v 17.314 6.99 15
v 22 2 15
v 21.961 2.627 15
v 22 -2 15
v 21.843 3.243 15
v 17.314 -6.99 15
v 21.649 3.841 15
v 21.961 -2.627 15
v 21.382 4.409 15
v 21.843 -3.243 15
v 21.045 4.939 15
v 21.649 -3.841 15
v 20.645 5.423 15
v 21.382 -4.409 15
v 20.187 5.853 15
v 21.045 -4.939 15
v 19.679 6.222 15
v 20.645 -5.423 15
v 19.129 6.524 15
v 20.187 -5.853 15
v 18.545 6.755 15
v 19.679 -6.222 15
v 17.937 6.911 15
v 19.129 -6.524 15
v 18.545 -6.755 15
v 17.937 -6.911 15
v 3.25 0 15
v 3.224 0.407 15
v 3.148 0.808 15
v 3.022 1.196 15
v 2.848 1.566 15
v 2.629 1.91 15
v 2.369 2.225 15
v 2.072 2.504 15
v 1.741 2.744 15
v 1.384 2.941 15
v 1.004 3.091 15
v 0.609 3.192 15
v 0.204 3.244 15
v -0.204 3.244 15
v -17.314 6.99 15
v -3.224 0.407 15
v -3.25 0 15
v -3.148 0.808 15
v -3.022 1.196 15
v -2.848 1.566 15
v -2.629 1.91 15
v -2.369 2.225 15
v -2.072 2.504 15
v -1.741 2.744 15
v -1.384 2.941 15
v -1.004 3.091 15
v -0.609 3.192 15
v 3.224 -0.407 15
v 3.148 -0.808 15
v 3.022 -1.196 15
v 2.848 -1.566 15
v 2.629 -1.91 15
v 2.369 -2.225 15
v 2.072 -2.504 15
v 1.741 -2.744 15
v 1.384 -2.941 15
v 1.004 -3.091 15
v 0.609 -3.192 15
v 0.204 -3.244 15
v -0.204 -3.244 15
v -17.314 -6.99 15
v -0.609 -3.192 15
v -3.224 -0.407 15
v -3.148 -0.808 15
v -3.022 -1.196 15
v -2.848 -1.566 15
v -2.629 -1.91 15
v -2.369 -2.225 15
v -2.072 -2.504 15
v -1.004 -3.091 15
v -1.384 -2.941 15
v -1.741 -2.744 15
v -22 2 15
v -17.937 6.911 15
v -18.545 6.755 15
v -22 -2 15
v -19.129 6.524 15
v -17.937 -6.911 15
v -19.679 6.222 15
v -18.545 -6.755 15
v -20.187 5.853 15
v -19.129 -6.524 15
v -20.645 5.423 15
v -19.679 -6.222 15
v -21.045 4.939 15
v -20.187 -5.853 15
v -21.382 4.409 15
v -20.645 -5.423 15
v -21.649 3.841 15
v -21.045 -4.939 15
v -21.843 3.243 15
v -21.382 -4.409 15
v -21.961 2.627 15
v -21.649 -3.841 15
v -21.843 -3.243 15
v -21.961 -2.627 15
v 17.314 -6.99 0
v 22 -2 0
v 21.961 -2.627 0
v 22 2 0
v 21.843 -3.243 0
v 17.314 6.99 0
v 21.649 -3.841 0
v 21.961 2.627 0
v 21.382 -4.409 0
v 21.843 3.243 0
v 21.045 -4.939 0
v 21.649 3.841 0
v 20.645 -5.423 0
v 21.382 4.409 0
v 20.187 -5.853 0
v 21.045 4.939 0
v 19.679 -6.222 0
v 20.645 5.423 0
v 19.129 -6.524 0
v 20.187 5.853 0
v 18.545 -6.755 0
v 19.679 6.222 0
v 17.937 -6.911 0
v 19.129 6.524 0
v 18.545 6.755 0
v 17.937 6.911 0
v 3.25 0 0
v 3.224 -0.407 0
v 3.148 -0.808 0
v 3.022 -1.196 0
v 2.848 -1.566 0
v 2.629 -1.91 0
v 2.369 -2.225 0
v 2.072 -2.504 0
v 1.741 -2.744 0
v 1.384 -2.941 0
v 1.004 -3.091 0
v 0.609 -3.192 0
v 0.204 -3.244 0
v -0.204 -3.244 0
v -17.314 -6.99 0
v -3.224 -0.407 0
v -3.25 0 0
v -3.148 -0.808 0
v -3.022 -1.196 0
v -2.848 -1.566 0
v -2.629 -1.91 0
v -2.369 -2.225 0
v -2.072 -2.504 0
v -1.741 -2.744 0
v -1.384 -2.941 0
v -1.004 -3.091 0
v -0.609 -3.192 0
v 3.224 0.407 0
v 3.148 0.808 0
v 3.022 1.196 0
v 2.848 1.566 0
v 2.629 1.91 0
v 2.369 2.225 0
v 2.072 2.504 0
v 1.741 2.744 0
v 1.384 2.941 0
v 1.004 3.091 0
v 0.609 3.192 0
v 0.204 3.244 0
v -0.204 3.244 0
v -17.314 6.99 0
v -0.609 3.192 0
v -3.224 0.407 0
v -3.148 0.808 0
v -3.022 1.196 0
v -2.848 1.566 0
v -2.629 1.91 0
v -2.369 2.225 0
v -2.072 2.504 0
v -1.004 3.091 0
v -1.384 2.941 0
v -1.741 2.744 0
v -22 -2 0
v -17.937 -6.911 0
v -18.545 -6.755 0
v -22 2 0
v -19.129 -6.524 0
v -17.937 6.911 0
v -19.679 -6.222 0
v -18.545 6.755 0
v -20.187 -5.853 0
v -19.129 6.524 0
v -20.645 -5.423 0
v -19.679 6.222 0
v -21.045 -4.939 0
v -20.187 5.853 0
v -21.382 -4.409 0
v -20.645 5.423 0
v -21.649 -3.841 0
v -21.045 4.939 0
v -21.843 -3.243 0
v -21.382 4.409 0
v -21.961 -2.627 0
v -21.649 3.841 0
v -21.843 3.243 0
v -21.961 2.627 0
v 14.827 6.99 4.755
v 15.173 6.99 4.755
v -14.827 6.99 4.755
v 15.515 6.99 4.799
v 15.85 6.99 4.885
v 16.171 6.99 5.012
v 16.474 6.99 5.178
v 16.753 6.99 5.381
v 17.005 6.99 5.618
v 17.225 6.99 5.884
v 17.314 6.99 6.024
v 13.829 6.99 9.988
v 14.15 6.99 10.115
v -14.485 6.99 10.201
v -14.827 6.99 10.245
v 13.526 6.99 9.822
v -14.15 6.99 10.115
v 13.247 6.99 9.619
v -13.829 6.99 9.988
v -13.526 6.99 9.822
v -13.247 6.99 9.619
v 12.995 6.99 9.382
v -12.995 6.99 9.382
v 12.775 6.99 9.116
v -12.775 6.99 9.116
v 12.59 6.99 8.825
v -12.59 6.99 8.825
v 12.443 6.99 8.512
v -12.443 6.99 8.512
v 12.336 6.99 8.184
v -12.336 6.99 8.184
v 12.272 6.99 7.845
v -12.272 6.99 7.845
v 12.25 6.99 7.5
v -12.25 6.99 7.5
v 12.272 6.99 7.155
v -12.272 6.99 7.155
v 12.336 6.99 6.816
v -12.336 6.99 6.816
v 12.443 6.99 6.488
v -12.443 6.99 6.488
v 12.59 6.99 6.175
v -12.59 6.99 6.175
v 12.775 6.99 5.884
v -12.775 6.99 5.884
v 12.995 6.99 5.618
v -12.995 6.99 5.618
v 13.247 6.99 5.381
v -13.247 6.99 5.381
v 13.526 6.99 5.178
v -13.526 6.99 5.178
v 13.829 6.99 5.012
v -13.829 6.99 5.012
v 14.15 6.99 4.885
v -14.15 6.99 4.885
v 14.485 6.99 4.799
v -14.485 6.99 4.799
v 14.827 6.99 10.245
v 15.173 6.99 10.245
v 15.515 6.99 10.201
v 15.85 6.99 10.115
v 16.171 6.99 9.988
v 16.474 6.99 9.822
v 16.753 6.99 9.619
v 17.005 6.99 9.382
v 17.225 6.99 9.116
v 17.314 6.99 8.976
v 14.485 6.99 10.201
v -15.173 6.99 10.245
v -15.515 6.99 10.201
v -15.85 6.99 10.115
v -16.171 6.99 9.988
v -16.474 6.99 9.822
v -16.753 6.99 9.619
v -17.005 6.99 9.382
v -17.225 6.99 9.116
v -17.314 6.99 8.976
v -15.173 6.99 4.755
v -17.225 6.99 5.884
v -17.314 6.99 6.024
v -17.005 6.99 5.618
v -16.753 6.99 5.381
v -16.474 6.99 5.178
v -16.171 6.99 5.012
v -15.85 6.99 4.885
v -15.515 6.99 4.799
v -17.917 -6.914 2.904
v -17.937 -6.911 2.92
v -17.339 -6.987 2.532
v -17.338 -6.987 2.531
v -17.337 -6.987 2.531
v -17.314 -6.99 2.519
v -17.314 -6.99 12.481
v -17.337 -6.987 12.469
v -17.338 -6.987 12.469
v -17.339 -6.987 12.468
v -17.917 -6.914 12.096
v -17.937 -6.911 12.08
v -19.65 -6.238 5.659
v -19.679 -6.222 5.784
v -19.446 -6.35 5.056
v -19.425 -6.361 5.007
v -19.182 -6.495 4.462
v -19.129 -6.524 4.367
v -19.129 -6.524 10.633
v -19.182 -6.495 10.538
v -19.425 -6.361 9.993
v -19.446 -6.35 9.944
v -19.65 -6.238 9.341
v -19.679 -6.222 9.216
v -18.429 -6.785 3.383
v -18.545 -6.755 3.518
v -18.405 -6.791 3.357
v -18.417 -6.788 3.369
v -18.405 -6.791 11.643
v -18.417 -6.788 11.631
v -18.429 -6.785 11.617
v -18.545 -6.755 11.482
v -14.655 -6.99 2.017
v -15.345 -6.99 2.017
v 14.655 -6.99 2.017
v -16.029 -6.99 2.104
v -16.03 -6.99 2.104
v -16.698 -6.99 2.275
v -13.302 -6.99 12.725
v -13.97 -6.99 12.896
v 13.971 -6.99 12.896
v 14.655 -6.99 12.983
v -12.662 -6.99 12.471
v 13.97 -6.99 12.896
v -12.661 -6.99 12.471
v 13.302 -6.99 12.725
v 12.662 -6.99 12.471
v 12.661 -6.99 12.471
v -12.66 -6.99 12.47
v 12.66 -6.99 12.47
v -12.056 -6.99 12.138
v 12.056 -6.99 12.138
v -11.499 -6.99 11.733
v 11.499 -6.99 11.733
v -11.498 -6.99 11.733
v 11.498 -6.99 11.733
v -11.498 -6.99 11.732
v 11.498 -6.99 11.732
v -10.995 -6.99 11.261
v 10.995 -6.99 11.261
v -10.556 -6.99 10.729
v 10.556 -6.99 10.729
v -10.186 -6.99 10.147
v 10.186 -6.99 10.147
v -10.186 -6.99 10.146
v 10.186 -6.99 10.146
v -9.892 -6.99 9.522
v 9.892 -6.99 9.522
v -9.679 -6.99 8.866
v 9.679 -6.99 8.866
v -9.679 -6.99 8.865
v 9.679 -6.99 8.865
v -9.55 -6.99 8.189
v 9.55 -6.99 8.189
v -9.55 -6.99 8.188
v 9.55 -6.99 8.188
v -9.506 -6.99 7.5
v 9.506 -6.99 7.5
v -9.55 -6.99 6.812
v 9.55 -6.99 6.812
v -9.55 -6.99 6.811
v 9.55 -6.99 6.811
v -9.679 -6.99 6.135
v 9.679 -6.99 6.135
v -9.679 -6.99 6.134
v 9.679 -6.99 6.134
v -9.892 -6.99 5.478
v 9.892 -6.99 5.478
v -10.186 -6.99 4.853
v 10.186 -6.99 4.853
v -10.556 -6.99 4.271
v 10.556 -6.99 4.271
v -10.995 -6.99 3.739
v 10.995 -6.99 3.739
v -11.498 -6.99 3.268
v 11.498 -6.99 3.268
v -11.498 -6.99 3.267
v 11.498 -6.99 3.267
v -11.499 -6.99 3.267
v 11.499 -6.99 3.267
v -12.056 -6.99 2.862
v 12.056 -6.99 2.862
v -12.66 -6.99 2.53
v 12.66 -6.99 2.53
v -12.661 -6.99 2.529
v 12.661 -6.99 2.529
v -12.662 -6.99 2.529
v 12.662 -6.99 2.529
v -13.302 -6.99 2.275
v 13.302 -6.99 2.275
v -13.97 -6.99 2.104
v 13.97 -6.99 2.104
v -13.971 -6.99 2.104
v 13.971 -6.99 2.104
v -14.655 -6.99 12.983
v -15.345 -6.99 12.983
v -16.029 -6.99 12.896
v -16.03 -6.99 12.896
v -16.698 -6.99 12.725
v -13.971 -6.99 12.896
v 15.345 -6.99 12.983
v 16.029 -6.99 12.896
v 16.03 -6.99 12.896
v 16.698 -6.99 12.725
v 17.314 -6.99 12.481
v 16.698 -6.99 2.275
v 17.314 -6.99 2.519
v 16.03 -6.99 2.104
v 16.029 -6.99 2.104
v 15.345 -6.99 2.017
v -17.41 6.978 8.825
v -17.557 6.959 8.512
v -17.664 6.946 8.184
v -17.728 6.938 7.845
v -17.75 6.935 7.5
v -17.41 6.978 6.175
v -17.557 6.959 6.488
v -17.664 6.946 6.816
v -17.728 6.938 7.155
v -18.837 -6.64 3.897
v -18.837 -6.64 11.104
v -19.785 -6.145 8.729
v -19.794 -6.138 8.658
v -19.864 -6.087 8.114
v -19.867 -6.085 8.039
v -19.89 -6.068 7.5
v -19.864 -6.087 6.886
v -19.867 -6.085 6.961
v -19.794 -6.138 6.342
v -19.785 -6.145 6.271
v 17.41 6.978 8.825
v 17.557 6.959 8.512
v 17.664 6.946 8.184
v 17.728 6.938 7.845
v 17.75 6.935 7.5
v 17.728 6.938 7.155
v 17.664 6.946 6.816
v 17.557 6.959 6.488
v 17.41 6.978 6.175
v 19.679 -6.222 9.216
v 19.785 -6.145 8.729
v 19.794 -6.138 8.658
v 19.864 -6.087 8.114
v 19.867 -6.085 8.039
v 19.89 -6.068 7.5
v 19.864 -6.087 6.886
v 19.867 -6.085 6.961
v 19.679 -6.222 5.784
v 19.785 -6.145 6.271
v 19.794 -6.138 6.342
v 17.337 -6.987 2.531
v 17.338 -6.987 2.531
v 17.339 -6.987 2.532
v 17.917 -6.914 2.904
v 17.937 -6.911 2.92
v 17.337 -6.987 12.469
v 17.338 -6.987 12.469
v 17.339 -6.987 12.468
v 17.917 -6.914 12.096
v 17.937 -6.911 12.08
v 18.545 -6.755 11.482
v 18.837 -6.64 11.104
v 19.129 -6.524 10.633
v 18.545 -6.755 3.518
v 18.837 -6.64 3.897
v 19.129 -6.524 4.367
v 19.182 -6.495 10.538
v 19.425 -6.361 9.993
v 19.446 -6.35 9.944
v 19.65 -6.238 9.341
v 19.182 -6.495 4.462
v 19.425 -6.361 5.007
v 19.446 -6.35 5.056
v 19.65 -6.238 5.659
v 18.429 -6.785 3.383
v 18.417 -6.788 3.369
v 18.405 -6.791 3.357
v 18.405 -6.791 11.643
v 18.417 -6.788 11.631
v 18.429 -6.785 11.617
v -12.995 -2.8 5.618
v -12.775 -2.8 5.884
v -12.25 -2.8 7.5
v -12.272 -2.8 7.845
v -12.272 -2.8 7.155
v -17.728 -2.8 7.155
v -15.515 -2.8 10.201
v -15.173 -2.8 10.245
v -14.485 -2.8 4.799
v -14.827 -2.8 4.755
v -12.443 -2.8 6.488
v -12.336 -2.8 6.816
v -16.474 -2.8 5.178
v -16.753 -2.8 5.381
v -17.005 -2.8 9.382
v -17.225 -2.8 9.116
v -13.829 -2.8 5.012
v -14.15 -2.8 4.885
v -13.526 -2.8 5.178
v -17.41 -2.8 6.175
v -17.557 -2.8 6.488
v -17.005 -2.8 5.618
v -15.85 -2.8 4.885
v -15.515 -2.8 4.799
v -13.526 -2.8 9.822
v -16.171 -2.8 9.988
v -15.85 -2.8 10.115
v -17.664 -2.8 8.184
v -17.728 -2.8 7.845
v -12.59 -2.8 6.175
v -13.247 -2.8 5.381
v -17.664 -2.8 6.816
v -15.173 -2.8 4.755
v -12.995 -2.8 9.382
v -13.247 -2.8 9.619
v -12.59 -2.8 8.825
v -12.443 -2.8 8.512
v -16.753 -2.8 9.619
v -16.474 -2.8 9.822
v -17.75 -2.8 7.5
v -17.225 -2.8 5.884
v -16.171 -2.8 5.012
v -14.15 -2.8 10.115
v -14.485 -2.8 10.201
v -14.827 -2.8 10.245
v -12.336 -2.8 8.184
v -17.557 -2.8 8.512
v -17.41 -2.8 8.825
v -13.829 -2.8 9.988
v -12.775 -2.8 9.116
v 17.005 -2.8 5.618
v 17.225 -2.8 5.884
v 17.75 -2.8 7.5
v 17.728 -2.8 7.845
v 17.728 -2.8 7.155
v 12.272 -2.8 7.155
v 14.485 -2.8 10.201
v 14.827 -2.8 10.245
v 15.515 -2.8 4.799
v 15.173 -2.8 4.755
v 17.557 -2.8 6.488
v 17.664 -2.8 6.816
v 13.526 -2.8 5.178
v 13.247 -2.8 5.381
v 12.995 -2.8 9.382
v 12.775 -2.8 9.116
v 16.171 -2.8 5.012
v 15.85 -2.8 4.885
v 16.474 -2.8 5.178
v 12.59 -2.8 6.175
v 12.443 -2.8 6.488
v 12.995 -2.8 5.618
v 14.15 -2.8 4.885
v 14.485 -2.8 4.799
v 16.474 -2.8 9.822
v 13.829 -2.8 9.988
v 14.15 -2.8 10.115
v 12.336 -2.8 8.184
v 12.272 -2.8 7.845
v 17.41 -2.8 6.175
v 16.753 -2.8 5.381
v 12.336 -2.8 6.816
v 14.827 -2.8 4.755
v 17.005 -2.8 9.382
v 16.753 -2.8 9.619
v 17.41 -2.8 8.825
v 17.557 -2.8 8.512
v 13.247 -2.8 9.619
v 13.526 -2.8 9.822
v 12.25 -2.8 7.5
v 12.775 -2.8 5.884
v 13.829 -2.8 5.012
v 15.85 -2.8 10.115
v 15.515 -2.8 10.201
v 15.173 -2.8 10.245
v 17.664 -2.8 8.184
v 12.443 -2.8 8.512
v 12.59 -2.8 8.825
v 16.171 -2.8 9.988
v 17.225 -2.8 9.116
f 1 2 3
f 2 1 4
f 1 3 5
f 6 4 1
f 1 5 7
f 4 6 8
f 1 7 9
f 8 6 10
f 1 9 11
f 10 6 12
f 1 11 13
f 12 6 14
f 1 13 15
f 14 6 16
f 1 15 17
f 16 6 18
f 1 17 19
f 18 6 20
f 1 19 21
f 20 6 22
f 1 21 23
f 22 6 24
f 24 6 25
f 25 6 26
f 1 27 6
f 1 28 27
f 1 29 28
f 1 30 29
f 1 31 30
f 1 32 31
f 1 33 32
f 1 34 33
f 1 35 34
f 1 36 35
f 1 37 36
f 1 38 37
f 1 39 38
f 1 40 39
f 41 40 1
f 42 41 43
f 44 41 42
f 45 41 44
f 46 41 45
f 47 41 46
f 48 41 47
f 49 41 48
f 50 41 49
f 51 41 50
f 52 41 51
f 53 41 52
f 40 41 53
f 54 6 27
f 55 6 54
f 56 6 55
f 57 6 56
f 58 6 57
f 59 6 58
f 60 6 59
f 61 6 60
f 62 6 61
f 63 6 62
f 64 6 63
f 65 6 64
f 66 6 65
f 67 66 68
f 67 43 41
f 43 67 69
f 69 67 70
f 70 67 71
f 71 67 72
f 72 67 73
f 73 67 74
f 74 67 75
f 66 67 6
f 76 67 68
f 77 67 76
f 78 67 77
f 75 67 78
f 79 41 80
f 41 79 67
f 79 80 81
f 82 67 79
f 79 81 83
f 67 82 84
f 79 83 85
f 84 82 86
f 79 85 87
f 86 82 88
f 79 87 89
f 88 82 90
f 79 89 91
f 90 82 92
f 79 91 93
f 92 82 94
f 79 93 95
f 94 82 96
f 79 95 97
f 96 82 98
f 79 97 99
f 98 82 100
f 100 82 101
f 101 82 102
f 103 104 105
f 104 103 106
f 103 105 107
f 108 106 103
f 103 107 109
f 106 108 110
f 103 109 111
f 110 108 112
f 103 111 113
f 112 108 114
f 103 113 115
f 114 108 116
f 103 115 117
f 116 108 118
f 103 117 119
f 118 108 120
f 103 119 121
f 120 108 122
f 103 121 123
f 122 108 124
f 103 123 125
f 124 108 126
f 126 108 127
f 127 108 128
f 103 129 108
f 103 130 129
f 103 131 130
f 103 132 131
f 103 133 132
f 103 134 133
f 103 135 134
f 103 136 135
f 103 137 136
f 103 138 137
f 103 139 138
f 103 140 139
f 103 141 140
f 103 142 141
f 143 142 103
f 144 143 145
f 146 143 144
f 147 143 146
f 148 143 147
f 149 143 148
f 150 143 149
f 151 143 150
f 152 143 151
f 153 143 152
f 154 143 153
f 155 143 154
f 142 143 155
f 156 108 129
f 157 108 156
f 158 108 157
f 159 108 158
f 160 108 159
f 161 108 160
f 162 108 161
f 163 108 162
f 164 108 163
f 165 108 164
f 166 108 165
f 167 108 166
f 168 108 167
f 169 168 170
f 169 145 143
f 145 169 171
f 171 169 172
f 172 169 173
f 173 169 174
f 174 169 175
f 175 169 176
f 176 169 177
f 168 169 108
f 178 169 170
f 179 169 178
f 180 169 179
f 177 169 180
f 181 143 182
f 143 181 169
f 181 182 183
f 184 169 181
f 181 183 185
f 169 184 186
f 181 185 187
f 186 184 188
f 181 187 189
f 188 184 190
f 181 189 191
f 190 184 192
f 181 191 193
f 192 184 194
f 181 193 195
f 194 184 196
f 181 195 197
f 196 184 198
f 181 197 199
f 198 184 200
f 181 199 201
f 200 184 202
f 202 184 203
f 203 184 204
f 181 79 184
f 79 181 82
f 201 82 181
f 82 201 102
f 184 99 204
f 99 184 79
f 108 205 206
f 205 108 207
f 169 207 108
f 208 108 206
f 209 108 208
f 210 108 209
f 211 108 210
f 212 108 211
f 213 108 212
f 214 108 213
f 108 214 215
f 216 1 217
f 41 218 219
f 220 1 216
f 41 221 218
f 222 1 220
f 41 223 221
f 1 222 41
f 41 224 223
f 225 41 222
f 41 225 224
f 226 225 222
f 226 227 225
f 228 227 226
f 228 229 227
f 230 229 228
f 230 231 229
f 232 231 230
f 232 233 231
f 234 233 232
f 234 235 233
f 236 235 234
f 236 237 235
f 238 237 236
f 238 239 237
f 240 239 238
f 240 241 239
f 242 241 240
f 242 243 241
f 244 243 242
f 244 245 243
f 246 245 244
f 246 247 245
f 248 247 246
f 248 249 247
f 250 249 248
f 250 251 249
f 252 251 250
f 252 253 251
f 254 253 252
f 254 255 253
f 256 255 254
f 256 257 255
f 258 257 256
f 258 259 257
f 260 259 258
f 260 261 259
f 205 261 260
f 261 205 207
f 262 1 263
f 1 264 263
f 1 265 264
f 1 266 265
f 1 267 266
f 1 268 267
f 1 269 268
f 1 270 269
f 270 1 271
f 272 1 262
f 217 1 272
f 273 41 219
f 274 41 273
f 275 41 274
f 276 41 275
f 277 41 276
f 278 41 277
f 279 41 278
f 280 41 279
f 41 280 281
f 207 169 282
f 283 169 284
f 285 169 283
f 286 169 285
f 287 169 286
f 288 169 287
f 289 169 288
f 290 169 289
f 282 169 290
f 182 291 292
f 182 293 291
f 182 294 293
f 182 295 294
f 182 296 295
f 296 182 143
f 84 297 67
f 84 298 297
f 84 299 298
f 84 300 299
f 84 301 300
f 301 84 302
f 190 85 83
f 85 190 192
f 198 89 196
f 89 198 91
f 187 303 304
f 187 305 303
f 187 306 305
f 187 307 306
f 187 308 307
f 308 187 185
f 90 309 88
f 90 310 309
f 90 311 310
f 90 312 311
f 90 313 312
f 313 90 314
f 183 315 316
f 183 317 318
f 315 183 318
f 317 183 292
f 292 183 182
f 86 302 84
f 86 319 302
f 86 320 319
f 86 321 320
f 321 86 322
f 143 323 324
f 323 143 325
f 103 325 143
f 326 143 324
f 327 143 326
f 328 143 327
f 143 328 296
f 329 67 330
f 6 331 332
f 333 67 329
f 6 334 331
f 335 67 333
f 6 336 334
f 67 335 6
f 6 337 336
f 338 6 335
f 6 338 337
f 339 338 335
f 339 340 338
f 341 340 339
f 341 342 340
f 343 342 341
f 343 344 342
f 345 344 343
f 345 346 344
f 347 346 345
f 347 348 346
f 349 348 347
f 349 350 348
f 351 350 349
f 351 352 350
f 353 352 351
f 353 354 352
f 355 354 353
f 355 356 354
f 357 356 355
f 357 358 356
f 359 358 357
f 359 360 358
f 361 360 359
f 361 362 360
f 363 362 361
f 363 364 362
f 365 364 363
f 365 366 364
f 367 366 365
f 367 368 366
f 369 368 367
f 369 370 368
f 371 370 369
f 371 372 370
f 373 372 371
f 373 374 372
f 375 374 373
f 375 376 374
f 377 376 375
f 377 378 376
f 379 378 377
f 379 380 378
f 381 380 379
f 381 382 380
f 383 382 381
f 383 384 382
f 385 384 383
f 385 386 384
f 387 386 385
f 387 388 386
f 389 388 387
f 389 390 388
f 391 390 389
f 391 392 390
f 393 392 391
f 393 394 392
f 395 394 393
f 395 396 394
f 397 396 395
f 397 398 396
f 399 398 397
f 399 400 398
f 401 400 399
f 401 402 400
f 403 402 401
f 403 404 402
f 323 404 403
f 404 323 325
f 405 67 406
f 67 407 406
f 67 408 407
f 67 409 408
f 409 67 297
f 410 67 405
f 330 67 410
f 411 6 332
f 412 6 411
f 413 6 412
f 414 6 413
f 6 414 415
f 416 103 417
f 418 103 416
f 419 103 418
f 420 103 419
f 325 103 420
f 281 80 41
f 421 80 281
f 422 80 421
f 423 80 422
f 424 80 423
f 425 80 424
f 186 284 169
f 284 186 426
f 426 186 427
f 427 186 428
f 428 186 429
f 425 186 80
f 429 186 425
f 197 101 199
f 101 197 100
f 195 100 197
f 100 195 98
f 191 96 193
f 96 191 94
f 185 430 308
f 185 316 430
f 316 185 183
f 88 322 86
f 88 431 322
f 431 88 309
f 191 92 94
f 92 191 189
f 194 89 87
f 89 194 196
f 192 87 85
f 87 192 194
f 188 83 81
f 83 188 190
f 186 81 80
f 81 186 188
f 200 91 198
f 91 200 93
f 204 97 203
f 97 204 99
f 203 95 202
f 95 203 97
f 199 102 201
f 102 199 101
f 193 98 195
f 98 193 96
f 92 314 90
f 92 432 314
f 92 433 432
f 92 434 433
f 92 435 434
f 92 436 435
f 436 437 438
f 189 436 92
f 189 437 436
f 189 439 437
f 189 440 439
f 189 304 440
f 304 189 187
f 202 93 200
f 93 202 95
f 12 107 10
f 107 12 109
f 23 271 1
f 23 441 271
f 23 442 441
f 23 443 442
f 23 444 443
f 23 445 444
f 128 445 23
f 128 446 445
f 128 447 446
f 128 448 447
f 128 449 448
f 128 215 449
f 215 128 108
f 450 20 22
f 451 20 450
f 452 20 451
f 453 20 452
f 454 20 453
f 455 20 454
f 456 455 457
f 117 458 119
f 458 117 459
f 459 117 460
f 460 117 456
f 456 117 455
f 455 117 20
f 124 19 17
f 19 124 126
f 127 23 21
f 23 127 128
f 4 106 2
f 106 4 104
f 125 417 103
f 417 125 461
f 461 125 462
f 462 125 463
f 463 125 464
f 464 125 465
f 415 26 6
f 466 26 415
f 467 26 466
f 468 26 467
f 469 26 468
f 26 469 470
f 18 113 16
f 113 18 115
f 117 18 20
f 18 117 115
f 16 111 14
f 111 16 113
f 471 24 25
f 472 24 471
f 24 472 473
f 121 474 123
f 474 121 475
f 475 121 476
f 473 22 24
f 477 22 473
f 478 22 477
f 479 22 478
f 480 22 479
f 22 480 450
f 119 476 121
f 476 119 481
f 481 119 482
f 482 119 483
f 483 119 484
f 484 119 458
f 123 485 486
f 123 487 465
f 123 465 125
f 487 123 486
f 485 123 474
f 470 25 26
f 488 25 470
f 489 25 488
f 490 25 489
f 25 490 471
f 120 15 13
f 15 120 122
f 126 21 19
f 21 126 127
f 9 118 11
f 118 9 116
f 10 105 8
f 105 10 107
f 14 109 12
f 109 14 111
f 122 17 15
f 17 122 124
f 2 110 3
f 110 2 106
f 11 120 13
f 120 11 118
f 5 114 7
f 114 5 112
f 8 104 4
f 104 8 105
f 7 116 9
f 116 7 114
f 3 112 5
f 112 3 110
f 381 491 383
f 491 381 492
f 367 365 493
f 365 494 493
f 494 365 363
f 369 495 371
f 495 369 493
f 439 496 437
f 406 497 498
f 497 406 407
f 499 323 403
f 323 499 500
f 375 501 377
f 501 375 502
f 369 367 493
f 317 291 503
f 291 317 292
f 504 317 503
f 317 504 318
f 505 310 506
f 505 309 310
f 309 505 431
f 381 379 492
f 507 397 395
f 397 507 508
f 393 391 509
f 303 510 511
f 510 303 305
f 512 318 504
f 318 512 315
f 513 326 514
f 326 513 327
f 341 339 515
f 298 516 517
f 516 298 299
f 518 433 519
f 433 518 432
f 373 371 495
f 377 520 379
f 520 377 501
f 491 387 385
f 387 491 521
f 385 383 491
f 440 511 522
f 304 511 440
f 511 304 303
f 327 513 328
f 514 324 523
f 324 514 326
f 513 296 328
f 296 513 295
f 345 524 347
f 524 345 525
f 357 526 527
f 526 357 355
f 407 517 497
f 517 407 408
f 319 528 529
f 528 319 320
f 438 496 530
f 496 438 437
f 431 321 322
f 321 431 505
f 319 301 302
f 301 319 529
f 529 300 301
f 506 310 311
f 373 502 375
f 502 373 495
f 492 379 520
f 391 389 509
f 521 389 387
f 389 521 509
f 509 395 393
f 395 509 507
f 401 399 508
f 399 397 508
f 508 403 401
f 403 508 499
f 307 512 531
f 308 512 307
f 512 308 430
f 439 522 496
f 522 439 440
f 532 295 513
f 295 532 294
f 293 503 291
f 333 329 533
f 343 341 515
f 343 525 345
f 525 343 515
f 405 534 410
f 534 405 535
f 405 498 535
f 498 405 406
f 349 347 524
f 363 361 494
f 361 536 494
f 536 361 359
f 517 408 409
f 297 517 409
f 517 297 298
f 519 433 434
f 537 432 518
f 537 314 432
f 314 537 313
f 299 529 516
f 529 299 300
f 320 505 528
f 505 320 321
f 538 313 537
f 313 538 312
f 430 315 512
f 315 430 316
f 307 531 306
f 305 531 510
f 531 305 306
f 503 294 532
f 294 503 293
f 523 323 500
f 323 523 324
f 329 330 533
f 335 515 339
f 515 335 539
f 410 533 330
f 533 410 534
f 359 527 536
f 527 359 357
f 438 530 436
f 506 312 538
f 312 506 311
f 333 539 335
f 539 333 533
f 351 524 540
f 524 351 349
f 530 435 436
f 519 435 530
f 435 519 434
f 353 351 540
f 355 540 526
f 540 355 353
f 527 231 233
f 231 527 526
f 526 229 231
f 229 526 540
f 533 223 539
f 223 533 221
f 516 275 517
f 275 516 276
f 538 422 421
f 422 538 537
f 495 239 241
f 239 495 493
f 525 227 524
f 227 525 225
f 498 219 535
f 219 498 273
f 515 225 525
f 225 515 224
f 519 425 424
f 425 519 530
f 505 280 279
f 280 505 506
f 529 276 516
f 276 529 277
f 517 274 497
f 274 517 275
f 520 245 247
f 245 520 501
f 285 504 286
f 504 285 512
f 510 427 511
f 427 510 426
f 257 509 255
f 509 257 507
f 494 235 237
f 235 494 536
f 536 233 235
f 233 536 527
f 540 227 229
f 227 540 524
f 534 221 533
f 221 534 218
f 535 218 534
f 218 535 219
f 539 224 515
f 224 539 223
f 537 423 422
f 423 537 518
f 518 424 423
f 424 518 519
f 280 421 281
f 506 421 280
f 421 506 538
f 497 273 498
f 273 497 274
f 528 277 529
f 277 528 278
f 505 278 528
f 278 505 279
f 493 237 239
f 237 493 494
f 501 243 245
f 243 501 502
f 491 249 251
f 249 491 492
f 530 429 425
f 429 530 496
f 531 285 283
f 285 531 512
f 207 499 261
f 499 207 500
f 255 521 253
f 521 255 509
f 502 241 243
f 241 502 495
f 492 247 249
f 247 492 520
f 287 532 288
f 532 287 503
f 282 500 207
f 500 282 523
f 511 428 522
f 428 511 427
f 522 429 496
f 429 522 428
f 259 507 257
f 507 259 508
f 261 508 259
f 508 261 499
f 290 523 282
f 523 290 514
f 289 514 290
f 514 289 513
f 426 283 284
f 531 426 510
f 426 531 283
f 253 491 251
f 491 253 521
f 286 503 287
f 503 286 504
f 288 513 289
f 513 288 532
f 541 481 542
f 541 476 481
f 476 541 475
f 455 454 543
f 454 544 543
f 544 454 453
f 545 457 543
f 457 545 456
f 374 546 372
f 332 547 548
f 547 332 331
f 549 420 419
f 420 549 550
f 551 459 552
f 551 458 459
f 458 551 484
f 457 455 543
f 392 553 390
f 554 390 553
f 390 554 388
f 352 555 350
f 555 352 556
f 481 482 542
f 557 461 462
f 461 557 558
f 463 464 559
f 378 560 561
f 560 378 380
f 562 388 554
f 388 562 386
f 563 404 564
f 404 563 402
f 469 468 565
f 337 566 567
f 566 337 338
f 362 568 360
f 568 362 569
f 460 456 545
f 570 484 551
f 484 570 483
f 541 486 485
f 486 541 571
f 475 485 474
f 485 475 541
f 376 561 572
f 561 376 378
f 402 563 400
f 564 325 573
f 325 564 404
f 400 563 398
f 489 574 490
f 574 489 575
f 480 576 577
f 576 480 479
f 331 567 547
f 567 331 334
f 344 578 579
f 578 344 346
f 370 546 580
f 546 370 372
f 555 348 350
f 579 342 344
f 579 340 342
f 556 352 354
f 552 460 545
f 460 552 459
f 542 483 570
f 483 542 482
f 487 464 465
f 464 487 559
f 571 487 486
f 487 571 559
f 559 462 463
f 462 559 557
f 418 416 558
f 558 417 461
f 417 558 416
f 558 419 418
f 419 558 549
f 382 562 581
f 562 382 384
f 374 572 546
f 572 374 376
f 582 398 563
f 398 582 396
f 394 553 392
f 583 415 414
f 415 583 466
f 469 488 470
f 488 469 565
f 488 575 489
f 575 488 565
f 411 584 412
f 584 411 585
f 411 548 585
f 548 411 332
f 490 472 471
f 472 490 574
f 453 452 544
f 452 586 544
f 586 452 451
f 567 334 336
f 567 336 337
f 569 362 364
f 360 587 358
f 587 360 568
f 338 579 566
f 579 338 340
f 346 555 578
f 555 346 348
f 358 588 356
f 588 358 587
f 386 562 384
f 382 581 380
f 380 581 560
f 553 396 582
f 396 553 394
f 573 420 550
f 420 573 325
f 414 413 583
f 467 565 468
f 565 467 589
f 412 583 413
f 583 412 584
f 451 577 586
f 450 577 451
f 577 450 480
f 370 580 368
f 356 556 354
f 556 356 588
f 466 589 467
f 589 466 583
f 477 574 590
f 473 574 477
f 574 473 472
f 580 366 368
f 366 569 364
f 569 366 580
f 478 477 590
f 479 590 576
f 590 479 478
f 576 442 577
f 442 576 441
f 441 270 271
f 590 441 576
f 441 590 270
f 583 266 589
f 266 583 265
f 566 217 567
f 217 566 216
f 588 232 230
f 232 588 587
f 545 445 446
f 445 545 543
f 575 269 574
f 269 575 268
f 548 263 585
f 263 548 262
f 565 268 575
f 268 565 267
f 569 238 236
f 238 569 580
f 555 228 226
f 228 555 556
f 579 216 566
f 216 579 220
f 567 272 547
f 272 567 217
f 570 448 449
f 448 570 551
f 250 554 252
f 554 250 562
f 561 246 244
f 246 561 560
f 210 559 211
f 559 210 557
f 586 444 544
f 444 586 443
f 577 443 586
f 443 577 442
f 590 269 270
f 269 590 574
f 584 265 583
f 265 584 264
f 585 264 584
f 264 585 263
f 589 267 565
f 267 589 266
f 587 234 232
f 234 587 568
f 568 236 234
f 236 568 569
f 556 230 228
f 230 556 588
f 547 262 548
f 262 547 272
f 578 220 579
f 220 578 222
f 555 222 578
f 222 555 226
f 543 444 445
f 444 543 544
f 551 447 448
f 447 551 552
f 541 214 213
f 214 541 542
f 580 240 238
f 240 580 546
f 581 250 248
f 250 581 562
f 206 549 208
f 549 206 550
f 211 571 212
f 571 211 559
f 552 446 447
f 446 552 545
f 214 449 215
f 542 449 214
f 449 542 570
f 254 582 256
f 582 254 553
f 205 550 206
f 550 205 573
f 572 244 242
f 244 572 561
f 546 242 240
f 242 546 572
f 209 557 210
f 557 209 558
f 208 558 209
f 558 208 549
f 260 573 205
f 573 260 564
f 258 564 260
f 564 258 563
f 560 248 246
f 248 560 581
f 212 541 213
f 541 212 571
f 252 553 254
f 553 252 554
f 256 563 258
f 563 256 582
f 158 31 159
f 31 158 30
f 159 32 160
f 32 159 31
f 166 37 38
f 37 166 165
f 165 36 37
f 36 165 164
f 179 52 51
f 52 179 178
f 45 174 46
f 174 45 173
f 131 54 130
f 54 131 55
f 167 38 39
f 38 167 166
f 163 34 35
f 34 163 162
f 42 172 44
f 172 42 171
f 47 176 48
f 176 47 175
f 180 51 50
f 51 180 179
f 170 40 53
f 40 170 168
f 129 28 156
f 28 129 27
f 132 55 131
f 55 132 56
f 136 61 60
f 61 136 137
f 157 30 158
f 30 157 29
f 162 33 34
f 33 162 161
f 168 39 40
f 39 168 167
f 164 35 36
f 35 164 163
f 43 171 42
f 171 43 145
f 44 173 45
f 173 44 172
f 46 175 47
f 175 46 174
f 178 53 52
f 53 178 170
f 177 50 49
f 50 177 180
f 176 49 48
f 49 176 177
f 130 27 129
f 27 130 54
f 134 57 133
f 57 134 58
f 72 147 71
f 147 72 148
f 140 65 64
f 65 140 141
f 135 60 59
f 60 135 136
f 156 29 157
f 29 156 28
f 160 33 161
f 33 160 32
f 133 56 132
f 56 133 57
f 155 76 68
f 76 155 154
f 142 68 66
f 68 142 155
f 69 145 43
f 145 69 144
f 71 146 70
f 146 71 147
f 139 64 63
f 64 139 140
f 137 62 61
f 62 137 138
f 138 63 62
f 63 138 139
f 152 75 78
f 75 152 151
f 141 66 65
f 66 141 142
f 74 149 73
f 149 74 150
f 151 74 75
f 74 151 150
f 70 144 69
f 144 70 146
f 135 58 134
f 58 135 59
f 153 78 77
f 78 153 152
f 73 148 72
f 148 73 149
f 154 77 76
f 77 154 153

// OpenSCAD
$fn = 50;


difference() {
	union() {
		cylinder(h = 15, r = 7.0000000000);
		translate(v = [-7.5000000000, 0.0000000000, 0]) {
			hull() {
				translate(v = [-9.5000000000, 2.0000000000, 0]) {
					cylinder(h = 15, r = 5);
				}
				translate(v = [9.5000000000, 2.0000000000, 0]) {
					cylinder(h = 15, r = 5);
				}
				translate(v = [-9.5000000000, -2.0000000000, 0]) {
					cylinder(h = 15, r = 5);
				}
				translate(v = [9.5000000000, -2.0000000000, 0]) {
					cylinder(h = 15, r = 5);
				}
			}
		}
		translate(v = [7.5000000000, 0.0000000000, 0]) {
			hull() {
				translate(v = [-9.5000000000, 2.0000000000, 0]) {
					cylinder(h = 15, r = 5);
				}
				translate(v = [9.5000000000, 2.0000000000, 0]) {
					cylinder(h = 15, r = 5);
				}
				translate(v = [-9.5000000000, -2.0000000000, 0]) {
					cylinder(h = 15, r = 5);
				}
				translate(v = [9.5000000000, -2.0000000000, 0]) {
					cylinder(h = 15, r = 5);
				}
			}
		}
	}
	union() {
		translate(v = [-15.0000000000, -7.0000000000, 7.5000000000]) {
			rotate(a = [90, 0, 0]) {
				difference() {
					union() {
						#translate(v = [0, 0, -14.0000000000]) {
							cylinder(h = 14, r = 2.2500000000);
						}
						#translate(v = [0, 0, -4.2000000000]) {
							cylinder(h = 4.2000000000, r1 = 2.7500000000, r2 = 5.5000000000);
						}
						#translate(v = [0, 0, -14.0000000000]) {
							cylinder(h = 14, r = 2.7500000000);
						}
						#translate(v = [0, 0, -14.0000000000]) {
							cylinder(h = 14, r = 2.2500000000);
						}
					}
					union();
				}
			}
		}
		translate(v = [15.0000000000, -7.0000000000, 7.5000000000]) {
			rotate(a = [90, 0, 0]) {
				difference() {
					union() {
						#translate(v = [0, 0, -14.0000000000]) {
							cylinder(h = 14, r = 2.2500000000);
						}
						#translate(v = [0, 0, -4.2000000000]) {
							cylinder(h = 4.2000000000, r1 = 2.7500000000, r2 = 5.5000000000);
						}
						#translate(v = [0, 0, -14.0000000000]) {
							cylinder(h = 14, r = 2.7500000000);
						}
						#translate(v = [0, 0, -14.0000000000]) {
							cylinder(h = 14, r = 2.2500000000);
						}
					}
					union();
				}
			}
		}
		translate(v = [0, 0, -100]) {
			cylinder(h = 200, r = 3.2500000000);
		}
		translate(v = [0, 0, -100]) {
			cylinder(h = 200, r = 1.8000000000);
		}
	}
}
